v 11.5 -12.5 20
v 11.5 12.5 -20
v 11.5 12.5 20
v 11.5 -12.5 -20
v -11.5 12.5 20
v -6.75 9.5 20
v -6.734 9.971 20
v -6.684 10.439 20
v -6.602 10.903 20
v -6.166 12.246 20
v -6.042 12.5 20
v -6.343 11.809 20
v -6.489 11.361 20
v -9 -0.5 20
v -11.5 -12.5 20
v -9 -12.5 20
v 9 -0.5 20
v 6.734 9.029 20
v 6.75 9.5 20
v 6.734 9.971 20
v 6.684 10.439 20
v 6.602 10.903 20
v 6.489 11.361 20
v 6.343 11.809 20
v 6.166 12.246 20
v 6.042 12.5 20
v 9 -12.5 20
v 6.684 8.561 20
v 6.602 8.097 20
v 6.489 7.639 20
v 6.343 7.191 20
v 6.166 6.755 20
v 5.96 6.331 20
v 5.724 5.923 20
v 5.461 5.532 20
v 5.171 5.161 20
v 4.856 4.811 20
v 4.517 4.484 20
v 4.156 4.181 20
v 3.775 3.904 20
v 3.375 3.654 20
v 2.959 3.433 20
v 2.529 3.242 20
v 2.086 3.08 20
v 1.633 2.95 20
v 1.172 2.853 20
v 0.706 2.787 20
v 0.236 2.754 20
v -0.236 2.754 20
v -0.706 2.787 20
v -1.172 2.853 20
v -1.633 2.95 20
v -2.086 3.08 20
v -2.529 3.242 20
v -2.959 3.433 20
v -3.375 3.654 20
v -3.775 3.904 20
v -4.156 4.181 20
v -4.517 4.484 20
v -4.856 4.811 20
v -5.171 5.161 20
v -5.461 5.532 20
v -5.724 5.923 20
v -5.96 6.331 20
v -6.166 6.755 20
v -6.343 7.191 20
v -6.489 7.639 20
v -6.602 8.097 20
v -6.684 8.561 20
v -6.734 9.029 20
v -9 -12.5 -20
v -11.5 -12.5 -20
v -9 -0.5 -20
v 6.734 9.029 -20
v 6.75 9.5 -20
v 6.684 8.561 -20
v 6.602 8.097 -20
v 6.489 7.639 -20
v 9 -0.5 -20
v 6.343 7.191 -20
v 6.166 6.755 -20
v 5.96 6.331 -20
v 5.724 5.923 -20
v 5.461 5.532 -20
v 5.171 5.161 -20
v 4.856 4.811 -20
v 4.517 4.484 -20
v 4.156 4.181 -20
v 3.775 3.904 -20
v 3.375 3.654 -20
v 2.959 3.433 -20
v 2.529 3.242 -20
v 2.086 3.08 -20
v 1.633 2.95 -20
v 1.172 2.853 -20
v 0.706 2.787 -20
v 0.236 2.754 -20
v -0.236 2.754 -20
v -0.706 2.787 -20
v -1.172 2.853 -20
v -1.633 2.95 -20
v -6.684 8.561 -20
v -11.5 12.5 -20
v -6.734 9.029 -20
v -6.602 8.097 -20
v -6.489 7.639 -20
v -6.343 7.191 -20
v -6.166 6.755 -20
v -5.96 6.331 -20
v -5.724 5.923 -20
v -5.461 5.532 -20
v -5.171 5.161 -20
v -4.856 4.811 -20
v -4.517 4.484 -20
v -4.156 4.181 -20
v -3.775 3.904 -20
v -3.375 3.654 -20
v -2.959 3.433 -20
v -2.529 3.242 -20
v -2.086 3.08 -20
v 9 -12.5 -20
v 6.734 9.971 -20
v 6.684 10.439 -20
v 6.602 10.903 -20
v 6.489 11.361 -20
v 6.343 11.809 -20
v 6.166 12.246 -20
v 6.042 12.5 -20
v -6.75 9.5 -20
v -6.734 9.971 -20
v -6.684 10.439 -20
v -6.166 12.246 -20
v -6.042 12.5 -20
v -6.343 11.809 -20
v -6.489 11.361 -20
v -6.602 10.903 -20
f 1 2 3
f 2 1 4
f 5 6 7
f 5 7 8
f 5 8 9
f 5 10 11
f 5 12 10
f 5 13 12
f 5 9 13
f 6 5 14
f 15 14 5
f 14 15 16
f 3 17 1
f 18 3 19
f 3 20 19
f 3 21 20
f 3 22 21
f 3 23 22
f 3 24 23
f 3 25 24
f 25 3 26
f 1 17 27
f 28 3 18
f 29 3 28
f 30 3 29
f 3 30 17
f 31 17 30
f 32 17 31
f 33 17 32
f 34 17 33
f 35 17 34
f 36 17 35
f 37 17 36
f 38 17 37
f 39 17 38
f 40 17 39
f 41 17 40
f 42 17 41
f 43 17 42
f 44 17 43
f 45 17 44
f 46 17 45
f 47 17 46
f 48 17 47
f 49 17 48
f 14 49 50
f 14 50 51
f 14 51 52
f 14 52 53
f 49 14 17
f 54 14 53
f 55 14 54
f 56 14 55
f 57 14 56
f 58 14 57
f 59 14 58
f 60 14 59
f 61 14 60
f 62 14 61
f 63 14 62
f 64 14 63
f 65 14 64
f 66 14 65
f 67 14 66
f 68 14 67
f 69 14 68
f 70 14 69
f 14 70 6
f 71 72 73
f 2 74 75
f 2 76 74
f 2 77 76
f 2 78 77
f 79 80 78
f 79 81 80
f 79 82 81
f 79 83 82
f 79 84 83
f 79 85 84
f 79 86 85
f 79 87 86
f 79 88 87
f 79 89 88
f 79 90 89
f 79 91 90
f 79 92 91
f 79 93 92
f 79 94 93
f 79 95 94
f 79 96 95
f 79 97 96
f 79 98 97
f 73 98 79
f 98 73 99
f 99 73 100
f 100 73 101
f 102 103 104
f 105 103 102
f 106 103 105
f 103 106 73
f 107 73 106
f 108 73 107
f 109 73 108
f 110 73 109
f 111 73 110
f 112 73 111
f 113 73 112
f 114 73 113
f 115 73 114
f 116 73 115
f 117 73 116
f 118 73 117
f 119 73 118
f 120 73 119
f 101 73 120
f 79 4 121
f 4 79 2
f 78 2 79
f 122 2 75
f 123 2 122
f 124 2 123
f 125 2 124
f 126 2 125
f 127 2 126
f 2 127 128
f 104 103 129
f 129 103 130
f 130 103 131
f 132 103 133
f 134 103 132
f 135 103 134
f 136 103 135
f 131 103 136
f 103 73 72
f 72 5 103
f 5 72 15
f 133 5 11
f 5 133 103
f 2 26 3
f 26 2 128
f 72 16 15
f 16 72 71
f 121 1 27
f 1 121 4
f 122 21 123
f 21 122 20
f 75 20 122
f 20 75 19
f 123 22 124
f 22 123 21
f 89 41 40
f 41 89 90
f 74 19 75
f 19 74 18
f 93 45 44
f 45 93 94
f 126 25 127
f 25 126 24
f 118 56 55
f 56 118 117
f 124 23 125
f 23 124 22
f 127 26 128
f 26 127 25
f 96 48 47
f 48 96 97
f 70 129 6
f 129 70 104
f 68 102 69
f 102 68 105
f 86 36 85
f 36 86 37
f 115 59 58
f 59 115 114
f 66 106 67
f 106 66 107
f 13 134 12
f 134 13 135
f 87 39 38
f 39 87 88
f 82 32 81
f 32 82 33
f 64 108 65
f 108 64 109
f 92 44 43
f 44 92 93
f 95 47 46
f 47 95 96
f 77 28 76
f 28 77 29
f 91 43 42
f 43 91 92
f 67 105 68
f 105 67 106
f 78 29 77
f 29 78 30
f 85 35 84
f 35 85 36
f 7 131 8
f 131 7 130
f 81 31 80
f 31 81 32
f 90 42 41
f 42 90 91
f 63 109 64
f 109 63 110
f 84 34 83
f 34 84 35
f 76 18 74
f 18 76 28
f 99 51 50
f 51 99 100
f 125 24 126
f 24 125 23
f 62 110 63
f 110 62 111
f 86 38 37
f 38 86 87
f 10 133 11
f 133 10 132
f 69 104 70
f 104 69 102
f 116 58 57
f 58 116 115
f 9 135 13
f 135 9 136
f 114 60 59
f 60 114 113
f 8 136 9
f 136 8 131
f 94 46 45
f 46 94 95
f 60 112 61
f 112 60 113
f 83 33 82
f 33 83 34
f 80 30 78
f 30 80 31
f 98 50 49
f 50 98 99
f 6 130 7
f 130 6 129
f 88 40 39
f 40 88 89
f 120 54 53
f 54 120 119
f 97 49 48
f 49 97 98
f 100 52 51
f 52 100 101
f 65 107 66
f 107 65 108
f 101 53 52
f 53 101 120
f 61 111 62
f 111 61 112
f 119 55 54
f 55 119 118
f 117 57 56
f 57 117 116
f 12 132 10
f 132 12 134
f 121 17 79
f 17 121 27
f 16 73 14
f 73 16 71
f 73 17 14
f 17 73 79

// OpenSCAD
$fn = 90;
height = 40;
depth = 25;

difference(){
	cube([23, depth, height], center=true);
	#translate([0, depth/2-3, 0])
		cylinder(d=13.5, h=height, center=true);
	
	blockDepth = 12;
	#translate([0, -(depth-blockDepth)/2, 0])
		cube([18, blockDepth, height], center=true);
}
